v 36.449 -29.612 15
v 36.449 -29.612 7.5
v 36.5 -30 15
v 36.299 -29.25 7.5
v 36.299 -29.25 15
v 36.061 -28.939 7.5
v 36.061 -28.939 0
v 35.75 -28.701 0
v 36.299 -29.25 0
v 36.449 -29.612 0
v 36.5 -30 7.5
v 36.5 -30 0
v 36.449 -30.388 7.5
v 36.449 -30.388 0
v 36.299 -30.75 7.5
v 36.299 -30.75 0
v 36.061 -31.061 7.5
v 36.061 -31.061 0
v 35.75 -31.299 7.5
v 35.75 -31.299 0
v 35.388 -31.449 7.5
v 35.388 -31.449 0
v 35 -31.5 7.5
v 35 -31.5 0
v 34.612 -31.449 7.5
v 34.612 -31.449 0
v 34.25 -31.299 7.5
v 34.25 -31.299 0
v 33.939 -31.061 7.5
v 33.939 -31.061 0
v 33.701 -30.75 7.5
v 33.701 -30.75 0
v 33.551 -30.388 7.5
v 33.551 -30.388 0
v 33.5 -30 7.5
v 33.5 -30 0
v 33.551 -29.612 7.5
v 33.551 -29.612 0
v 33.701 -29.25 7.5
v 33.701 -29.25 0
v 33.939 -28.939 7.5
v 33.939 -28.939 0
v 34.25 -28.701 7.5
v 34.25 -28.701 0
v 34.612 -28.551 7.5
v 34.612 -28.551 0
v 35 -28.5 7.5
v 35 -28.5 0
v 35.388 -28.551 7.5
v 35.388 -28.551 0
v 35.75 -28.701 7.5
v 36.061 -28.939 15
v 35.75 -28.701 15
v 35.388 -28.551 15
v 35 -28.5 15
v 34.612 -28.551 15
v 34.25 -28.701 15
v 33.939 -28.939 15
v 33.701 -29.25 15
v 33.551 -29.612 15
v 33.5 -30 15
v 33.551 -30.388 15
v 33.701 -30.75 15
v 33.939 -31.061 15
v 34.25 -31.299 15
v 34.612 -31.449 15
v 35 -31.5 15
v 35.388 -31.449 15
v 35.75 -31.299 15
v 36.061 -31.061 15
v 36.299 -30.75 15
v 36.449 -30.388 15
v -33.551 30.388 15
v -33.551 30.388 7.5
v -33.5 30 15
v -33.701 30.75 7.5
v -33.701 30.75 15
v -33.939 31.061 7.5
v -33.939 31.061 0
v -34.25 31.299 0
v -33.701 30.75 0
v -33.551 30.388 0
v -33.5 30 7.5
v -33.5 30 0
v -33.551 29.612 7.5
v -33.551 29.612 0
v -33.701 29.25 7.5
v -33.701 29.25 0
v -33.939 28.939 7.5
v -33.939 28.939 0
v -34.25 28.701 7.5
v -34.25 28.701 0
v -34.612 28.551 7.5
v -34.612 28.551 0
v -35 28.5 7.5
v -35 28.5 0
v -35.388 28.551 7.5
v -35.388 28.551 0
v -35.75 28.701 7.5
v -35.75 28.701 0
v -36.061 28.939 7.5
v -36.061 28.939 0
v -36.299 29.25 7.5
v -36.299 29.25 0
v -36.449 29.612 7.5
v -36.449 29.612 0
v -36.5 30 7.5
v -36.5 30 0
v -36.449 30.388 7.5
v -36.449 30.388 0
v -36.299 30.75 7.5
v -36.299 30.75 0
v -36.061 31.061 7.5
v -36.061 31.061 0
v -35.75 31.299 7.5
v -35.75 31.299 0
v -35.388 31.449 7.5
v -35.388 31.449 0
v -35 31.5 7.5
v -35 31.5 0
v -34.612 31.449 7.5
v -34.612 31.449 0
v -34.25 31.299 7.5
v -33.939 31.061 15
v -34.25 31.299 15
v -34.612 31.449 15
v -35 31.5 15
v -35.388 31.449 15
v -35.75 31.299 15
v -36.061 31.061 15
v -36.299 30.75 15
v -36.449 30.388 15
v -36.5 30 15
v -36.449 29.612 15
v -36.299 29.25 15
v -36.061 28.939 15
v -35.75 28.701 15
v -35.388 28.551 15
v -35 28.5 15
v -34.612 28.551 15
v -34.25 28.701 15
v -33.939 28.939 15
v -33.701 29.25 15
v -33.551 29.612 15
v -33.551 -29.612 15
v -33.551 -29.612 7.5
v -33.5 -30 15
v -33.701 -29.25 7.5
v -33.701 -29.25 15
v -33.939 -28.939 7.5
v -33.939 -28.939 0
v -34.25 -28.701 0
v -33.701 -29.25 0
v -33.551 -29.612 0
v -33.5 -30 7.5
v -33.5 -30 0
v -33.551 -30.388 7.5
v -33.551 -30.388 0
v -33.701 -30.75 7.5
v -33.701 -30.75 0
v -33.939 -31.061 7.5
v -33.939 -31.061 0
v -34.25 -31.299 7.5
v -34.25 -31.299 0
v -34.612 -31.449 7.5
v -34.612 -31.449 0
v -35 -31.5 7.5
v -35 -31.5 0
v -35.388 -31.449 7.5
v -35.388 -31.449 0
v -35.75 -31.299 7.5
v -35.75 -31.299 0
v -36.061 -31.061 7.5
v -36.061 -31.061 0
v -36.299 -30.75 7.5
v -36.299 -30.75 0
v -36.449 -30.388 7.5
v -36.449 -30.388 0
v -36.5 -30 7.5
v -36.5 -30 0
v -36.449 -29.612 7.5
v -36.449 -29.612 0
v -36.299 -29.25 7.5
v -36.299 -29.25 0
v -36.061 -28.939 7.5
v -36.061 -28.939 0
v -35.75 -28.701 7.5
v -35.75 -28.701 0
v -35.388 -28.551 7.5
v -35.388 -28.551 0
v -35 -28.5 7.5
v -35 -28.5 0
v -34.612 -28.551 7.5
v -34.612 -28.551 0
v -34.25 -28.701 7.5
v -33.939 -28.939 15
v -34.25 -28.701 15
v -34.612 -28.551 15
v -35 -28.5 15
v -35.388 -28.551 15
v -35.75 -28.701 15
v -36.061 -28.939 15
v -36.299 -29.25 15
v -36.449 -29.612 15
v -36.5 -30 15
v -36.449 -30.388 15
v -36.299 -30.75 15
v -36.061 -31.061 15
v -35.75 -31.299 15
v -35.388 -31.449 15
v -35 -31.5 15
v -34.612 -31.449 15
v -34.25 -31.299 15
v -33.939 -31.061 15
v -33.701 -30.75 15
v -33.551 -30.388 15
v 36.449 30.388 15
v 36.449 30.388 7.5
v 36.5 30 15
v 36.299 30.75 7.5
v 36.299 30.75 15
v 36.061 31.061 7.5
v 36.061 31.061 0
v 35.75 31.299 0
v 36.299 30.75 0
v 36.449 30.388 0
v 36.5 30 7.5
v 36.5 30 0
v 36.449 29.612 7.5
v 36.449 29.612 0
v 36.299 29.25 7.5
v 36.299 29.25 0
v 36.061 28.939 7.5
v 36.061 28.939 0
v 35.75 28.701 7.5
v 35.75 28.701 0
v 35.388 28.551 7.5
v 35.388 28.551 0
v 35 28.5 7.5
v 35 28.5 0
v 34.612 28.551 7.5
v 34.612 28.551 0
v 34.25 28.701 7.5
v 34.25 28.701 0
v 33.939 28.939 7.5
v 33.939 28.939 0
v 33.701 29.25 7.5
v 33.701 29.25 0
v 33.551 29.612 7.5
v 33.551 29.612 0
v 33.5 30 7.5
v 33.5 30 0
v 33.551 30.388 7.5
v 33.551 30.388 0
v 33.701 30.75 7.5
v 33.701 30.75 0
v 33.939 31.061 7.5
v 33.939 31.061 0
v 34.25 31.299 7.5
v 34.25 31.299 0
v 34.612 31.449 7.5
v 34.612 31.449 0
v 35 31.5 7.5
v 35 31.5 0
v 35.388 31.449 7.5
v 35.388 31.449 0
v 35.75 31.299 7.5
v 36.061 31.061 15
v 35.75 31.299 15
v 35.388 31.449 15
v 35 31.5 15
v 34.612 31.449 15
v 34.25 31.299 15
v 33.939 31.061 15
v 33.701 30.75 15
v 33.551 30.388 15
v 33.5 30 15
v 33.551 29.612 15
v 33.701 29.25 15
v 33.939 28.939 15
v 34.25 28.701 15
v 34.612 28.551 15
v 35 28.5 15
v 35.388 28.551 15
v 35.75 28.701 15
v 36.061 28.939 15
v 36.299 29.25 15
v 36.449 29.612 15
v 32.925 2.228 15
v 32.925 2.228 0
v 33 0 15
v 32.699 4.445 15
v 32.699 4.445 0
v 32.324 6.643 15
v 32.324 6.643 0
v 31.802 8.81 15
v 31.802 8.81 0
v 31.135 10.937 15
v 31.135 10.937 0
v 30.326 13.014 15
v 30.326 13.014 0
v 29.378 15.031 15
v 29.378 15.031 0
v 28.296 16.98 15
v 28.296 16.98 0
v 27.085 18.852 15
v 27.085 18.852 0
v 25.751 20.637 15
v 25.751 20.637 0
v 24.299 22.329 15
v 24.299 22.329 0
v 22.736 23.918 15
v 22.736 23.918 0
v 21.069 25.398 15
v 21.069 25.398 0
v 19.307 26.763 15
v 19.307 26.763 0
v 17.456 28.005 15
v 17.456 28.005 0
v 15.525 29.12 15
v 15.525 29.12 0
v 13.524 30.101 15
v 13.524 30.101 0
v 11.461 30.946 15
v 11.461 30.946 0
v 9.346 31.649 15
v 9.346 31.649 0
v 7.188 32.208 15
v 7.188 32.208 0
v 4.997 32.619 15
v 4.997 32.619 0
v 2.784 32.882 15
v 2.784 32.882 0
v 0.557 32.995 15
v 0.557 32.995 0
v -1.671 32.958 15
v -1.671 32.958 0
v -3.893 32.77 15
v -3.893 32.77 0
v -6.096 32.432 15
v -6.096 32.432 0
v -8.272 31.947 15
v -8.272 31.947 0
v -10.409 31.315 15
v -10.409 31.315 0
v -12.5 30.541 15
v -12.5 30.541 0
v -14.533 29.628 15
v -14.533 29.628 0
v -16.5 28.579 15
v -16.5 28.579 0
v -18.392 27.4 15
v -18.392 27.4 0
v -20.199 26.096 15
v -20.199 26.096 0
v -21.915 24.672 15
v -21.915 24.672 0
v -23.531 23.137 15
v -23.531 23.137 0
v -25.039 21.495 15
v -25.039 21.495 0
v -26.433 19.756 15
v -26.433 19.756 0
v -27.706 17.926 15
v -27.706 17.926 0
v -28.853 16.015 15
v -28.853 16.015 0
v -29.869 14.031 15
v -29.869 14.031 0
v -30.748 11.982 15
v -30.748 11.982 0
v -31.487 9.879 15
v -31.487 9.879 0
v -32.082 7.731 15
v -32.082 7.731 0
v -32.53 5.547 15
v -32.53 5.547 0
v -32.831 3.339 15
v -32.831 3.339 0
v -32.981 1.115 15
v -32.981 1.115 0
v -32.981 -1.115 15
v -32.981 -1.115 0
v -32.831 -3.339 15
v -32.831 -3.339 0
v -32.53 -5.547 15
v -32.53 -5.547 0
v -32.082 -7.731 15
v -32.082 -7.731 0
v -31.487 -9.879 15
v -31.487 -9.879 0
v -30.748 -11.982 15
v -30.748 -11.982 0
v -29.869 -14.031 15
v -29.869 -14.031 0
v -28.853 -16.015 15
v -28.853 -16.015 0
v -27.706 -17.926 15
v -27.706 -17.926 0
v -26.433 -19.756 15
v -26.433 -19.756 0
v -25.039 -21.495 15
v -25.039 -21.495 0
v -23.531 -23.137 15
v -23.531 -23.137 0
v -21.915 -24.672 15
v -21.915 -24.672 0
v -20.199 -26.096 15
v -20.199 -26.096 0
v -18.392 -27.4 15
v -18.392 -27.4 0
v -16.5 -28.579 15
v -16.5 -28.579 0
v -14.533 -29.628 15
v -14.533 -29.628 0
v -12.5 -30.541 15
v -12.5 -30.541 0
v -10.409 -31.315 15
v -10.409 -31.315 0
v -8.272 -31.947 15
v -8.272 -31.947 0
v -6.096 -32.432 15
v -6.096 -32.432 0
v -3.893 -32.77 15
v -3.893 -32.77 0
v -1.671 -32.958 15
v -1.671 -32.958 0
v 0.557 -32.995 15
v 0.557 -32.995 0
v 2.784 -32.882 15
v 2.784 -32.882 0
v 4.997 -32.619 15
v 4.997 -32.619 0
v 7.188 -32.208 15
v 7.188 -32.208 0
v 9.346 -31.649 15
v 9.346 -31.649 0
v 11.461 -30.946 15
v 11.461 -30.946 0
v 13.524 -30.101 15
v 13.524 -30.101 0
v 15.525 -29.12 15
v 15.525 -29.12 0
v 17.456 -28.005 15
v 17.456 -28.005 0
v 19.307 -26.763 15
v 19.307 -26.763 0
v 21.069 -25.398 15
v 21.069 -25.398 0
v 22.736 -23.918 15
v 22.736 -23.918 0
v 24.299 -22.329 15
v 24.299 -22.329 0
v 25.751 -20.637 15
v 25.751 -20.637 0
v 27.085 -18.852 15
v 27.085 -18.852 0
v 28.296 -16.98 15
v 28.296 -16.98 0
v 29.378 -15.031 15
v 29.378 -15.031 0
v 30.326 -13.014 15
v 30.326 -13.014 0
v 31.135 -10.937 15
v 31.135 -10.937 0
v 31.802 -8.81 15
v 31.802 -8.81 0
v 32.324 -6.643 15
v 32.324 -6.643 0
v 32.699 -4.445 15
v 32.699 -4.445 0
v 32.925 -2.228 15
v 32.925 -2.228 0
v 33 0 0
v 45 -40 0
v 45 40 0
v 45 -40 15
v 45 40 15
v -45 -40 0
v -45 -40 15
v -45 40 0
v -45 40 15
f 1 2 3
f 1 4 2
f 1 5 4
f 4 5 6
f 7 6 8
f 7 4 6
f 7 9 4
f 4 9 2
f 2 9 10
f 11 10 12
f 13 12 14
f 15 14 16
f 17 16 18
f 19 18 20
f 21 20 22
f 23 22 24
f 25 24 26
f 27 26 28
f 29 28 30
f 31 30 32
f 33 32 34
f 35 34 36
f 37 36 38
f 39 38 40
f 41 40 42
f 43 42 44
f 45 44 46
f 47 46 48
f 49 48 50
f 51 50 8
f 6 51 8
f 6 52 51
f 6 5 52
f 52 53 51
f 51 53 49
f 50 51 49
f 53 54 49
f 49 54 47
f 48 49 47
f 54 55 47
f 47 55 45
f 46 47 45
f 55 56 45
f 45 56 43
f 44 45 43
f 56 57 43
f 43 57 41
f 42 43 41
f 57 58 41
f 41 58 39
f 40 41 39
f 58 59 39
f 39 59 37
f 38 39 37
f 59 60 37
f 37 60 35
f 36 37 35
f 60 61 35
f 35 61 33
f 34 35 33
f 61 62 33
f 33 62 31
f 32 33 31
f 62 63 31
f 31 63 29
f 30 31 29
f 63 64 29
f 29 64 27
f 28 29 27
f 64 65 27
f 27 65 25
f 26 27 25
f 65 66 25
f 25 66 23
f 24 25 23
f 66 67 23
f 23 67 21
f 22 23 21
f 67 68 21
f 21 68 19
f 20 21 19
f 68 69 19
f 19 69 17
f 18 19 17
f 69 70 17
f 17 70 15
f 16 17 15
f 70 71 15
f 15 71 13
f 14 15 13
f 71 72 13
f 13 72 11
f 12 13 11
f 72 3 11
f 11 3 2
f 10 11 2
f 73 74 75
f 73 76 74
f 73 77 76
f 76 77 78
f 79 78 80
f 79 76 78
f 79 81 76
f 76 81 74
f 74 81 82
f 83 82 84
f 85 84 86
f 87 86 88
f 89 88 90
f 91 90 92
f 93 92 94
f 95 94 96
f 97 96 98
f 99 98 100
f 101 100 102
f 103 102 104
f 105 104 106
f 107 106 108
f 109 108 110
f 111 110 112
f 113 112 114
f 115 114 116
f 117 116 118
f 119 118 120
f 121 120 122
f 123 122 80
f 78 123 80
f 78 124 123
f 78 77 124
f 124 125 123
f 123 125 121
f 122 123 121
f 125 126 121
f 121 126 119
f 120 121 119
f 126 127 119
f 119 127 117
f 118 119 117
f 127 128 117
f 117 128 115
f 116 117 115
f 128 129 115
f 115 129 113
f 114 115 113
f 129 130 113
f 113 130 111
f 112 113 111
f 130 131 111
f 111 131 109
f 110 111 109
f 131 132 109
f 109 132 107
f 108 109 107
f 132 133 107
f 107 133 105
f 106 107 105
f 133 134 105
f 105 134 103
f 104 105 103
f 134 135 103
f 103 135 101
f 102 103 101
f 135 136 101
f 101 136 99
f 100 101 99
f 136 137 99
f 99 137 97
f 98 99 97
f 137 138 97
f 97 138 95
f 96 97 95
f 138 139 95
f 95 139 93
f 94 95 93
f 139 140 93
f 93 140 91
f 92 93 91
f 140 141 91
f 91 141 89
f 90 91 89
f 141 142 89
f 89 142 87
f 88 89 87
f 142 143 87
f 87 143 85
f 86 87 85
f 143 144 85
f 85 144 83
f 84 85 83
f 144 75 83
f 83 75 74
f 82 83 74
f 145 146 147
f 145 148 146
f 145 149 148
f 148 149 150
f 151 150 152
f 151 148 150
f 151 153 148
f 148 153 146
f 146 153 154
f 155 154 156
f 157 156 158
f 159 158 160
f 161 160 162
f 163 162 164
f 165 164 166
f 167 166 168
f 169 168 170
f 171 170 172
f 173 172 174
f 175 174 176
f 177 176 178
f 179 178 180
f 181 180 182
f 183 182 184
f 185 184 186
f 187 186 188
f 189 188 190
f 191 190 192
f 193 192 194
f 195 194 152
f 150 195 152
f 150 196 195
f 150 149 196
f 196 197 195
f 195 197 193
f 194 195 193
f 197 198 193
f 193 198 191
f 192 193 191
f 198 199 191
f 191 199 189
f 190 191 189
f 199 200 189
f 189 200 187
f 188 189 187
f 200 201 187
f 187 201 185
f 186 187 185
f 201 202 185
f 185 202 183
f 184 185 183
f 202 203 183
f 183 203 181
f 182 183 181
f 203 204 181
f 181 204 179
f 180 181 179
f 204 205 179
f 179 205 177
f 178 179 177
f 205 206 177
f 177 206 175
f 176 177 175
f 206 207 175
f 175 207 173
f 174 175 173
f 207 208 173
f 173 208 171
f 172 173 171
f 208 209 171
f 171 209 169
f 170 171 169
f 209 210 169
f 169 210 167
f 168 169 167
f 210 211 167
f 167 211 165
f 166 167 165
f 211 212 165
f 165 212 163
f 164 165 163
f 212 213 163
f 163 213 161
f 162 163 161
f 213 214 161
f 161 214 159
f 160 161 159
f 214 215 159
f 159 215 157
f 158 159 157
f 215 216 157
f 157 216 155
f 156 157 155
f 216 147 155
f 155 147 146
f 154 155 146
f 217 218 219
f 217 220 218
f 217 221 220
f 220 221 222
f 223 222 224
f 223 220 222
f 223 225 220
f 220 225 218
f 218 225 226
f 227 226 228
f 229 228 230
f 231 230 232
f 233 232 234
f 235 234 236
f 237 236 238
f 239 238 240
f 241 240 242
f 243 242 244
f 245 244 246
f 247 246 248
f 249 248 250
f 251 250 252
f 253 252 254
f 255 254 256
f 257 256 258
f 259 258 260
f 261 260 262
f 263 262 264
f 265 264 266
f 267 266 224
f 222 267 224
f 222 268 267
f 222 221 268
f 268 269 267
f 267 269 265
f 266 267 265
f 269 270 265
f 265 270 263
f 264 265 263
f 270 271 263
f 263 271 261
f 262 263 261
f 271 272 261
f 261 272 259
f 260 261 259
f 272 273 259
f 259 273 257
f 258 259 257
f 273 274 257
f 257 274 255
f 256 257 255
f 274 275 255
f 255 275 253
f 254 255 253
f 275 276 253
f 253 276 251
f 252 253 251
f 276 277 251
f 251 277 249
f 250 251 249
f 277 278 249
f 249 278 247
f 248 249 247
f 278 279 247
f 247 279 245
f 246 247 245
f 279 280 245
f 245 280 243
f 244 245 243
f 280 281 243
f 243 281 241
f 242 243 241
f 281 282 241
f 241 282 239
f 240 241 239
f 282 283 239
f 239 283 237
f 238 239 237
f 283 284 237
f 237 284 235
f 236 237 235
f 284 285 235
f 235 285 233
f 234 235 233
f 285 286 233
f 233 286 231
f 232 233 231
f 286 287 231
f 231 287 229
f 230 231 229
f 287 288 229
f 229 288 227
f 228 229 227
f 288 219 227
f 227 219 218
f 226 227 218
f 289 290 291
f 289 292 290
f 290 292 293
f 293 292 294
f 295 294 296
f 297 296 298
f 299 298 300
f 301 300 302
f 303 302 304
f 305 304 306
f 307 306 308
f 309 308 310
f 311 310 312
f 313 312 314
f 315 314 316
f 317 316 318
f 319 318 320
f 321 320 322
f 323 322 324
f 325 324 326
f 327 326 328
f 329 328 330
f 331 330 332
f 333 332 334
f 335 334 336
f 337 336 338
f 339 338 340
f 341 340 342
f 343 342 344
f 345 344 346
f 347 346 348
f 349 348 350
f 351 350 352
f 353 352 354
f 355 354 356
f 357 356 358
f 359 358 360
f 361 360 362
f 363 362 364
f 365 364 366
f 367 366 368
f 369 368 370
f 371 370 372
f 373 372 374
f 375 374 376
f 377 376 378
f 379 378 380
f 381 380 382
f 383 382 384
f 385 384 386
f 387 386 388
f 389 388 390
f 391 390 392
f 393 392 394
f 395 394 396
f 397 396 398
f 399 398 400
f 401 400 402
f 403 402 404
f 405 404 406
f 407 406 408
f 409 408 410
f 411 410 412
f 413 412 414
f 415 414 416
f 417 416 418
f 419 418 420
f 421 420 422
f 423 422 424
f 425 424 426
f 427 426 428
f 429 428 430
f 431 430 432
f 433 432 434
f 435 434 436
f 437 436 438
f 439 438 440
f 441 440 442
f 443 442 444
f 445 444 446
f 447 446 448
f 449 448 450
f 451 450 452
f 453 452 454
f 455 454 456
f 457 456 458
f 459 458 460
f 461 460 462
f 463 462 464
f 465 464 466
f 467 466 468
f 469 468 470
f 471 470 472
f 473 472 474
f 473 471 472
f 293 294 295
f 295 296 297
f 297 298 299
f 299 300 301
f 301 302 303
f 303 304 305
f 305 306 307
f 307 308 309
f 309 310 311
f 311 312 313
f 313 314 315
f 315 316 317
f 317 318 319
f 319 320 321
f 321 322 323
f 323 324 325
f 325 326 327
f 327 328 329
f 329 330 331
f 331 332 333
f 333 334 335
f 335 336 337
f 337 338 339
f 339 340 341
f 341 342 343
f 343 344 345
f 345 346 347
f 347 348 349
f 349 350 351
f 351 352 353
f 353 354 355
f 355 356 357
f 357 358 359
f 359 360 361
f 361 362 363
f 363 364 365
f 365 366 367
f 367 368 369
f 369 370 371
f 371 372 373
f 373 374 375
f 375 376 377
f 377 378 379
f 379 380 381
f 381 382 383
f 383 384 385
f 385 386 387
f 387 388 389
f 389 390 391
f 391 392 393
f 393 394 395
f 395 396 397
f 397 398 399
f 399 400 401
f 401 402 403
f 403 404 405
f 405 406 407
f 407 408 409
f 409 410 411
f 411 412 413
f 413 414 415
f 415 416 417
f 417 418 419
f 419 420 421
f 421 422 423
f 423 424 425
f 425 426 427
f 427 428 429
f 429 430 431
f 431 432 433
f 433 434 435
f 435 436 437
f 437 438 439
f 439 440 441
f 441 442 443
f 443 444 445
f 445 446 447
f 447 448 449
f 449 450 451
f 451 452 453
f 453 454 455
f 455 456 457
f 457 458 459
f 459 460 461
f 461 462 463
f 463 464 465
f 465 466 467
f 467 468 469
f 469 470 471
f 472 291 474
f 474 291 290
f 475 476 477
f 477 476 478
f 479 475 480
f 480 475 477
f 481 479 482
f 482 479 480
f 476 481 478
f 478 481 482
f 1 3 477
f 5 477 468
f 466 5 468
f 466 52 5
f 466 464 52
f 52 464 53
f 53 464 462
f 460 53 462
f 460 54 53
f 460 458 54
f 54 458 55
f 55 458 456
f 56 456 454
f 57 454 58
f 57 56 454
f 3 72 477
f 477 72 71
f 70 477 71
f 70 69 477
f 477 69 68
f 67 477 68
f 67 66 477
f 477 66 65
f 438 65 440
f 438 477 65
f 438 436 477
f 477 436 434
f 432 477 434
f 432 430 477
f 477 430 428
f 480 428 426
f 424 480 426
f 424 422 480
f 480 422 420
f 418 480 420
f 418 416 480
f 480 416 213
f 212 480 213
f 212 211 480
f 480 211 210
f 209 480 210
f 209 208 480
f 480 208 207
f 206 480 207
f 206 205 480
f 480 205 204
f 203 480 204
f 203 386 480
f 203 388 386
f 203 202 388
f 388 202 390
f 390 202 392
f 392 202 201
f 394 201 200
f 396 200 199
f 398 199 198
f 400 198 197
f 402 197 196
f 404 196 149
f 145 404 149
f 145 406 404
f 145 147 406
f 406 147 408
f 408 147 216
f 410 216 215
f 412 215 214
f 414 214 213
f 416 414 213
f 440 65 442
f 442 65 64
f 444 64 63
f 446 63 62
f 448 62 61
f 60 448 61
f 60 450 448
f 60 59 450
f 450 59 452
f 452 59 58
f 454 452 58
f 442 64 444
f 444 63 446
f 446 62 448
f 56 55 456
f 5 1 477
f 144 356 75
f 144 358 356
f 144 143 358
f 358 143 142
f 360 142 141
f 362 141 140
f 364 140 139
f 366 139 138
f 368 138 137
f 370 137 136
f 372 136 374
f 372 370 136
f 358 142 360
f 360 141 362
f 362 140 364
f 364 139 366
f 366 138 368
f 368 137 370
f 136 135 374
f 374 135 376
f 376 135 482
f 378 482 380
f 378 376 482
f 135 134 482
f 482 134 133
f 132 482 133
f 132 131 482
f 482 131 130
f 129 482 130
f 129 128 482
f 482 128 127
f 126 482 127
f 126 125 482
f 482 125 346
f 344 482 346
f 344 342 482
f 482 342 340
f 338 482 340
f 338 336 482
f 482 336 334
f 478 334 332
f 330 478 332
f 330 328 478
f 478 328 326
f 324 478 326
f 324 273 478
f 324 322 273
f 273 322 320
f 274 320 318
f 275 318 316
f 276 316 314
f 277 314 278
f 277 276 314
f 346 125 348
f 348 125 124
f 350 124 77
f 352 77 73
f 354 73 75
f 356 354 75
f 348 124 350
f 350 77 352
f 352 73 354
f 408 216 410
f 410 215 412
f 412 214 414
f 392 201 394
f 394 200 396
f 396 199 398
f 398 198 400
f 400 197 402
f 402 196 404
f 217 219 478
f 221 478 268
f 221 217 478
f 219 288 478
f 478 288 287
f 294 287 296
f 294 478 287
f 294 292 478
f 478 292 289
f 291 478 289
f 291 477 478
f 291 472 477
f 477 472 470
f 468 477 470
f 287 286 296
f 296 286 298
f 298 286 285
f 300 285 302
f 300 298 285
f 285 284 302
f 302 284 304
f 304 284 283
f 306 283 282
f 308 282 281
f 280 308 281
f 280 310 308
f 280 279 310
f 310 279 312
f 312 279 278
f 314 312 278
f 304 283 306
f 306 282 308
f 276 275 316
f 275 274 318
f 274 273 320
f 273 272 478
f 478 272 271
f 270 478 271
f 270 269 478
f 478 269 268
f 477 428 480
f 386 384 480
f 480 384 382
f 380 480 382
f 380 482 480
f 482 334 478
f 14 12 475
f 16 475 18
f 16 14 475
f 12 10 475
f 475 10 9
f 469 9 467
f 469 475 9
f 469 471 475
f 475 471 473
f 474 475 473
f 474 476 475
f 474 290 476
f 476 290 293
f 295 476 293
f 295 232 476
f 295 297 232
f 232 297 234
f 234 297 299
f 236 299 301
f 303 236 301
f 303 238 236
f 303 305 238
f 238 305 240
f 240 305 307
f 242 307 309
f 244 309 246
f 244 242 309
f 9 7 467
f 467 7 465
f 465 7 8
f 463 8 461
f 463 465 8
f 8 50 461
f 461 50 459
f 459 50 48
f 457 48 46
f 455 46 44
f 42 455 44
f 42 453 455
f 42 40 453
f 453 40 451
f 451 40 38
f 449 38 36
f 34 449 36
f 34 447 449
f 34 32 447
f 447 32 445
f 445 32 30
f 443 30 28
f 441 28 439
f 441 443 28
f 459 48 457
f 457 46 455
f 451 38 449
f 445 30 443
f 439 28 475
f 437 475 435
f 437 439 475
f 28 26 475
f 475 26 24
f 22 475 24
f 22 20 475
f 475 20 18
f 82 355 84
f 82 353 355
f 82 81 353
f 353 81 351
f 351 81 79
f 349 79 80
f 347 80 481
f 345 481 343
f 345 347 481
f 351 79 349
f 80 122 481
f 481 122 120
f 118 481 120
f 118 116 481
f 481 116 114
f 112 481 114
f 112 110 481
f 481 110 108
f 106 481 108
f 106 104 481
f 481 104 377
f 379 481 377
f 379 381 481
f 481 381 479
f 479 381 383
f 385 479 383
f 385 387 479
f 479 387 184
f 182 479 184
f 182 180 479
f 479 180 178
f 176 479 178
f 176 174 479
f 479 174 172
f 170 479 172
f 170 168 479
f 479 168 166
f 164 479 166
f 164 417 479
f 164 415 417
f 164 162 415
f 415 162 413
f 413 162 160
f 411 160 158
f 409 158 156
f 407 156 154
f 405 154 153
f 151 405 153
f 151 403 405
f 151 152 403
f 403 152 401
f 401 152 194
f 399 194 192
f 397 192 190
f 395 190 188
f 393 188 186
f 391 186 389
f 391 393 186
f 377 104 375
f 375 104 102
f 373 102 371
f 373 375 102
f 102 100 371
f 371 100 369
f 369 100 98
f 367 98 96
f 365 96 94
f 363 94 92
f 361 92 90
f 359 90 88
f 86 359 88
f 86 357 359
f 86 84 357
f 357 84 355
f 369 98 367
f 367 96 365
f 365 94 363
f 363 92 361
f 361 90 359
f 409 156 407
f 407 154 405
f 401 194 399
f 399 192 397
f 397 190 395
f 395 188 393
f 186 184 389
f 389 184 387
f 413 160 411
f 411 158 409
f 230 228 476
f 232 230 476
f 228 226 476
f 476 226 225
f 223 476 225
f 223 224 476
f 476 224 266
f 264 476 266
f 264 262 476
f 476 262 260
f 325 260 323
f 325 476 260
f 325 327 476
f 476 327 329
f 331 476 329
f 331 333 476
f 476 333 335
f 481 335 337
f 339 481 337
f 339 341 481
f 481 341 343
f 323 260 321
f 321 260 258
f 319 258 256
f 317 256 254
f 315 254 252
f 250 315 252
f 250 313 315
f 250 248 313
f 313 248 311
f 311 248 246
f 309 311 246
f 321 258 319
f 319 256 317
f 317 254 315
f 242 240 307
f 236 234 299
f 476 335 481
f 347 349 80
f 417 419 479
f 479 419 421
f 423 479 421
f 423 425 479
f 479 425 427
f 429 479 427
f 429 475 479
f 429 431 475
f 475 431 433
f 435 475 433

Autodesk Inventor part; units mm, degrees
ref_plane "YZ Plane" through (0, 0, 0) normal (1, 0, 0) x (0, 1, 0)
ref_plane "XZ Plane" through (0, 0, 0) normal (0, 1, 0) x (-1, 0, 0)
ref_plane "XY Plane" through (0, 0, 0) normal (0, 0, 1) x (1, 0, 0)
sketch "スケッチ1" plane through (0, 0, 0) normal (0, 0, 1) x (1, 0, 0)
  circle A0 centre (0, 0) radius 40
  line L0 (-45, 40) -> (45, 40)
  line L1 (45, 40) -> (45, -40)
  line L2 (45, -40) -> (-45, -40)
  line L3 (-45, -40) -> (-45, 40)
  line L4 (-45, 40) -> (45, -40) construction
  line L5 (45, 40) -> (-45, -40) construction
  circle A1 centre (0, 0) radius 33
  dimension "d0" = 80
  dimension "d1" = 90
  dimension "d2" = 80
  dimension "d3" = 66
extrude "押し出し1" add sketch "スケッチ1" along normal blind 15
sketch "スケッチ2" plane through (0, 0, 15) normal (0, 0, 1) x (1, 0, 0)
  line L0 (-45, 40) -> (-35, 40)
  line L1 (-35, 40) -> (-35, 30)
  line L2 (-35, 30) -> (-45, 30)
  line L3 (-45, 30) -> (-45, 40)
  line L4 (-45, -40) -> (-35, -40)
  line L5 (-35, -40) -> (-35, -30)
  line L6 (-35, -30) -> (-45, -30)
  line L7 (-45, -30) -> (-45, -40)
  line L8 (45, -40) -> (35, -40)
  line L9 (35, -40) -> (35, -30)
  line L10 (35, -30) -> (45, -30)
  line L11 (45, -30) -> (45, -40)
  line L12 (45, 40) -> (35, 40)
  line L13 (35, 40) -> (35, 30)
  line L14 (35, 30) -> (45, 30)
  line L15 (45, 30) -> (45, 40)
  dimension "d6" = 10
  dimension "d7" = 10
  dimension "d8" = 10
  dimension "d9" = 10
  dimension "d10" = 10
  dimension "d11" = 10
  dimension "d12" = 10
hole "穴1" at (-35, 30, 15) at (-35, -30, 15) at (35, -30, 15) at (35, 30, 15) direction (0, 0, -1) diameter 3 depth 15 tip angle 118
properties part number "知能ロボコン発射筒スペーサ"
